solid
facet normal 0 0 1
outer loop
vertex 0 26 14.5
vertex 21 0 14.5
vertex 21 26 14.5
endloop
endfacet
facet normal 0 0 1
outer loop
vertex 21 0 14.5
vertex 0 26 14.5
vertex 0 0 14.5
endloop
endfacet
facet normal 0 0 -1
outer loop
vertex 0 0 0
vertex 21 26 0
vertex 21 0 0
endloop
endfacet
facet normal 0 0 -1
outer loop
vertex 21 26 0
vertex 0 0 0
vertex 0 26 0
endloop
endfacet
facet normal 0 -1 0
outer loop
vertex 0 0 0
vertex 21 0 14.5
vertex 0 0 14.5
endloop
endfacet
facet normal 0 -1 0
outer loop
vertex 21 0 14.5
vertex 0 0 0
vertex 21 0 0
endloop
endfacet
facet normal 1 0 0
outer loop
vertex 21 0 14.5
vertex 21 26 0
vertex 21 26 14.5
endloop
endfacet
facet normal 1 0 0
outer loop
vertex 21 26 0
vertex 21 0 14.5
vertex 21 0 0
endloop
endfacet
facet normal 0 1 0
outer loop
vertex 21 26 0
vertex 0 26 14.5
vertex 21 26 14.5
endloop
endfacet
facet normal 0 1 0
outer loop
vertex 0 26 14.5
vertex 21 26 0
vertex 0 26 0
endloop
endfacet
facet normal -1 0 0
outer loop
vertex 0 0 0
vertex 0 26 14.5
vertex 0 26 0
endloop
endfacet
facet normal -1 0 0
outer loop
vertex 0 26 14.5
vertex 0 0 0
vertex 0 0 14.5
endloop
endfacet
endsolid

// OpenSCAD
width=20.0;
length=25.0;
height=25.0;
tolerance=0.5;

/* cube([width, length, height], false); */
cube([width+2*tolerance, length+2*tolerance, height-10.0-tolerance], false);
